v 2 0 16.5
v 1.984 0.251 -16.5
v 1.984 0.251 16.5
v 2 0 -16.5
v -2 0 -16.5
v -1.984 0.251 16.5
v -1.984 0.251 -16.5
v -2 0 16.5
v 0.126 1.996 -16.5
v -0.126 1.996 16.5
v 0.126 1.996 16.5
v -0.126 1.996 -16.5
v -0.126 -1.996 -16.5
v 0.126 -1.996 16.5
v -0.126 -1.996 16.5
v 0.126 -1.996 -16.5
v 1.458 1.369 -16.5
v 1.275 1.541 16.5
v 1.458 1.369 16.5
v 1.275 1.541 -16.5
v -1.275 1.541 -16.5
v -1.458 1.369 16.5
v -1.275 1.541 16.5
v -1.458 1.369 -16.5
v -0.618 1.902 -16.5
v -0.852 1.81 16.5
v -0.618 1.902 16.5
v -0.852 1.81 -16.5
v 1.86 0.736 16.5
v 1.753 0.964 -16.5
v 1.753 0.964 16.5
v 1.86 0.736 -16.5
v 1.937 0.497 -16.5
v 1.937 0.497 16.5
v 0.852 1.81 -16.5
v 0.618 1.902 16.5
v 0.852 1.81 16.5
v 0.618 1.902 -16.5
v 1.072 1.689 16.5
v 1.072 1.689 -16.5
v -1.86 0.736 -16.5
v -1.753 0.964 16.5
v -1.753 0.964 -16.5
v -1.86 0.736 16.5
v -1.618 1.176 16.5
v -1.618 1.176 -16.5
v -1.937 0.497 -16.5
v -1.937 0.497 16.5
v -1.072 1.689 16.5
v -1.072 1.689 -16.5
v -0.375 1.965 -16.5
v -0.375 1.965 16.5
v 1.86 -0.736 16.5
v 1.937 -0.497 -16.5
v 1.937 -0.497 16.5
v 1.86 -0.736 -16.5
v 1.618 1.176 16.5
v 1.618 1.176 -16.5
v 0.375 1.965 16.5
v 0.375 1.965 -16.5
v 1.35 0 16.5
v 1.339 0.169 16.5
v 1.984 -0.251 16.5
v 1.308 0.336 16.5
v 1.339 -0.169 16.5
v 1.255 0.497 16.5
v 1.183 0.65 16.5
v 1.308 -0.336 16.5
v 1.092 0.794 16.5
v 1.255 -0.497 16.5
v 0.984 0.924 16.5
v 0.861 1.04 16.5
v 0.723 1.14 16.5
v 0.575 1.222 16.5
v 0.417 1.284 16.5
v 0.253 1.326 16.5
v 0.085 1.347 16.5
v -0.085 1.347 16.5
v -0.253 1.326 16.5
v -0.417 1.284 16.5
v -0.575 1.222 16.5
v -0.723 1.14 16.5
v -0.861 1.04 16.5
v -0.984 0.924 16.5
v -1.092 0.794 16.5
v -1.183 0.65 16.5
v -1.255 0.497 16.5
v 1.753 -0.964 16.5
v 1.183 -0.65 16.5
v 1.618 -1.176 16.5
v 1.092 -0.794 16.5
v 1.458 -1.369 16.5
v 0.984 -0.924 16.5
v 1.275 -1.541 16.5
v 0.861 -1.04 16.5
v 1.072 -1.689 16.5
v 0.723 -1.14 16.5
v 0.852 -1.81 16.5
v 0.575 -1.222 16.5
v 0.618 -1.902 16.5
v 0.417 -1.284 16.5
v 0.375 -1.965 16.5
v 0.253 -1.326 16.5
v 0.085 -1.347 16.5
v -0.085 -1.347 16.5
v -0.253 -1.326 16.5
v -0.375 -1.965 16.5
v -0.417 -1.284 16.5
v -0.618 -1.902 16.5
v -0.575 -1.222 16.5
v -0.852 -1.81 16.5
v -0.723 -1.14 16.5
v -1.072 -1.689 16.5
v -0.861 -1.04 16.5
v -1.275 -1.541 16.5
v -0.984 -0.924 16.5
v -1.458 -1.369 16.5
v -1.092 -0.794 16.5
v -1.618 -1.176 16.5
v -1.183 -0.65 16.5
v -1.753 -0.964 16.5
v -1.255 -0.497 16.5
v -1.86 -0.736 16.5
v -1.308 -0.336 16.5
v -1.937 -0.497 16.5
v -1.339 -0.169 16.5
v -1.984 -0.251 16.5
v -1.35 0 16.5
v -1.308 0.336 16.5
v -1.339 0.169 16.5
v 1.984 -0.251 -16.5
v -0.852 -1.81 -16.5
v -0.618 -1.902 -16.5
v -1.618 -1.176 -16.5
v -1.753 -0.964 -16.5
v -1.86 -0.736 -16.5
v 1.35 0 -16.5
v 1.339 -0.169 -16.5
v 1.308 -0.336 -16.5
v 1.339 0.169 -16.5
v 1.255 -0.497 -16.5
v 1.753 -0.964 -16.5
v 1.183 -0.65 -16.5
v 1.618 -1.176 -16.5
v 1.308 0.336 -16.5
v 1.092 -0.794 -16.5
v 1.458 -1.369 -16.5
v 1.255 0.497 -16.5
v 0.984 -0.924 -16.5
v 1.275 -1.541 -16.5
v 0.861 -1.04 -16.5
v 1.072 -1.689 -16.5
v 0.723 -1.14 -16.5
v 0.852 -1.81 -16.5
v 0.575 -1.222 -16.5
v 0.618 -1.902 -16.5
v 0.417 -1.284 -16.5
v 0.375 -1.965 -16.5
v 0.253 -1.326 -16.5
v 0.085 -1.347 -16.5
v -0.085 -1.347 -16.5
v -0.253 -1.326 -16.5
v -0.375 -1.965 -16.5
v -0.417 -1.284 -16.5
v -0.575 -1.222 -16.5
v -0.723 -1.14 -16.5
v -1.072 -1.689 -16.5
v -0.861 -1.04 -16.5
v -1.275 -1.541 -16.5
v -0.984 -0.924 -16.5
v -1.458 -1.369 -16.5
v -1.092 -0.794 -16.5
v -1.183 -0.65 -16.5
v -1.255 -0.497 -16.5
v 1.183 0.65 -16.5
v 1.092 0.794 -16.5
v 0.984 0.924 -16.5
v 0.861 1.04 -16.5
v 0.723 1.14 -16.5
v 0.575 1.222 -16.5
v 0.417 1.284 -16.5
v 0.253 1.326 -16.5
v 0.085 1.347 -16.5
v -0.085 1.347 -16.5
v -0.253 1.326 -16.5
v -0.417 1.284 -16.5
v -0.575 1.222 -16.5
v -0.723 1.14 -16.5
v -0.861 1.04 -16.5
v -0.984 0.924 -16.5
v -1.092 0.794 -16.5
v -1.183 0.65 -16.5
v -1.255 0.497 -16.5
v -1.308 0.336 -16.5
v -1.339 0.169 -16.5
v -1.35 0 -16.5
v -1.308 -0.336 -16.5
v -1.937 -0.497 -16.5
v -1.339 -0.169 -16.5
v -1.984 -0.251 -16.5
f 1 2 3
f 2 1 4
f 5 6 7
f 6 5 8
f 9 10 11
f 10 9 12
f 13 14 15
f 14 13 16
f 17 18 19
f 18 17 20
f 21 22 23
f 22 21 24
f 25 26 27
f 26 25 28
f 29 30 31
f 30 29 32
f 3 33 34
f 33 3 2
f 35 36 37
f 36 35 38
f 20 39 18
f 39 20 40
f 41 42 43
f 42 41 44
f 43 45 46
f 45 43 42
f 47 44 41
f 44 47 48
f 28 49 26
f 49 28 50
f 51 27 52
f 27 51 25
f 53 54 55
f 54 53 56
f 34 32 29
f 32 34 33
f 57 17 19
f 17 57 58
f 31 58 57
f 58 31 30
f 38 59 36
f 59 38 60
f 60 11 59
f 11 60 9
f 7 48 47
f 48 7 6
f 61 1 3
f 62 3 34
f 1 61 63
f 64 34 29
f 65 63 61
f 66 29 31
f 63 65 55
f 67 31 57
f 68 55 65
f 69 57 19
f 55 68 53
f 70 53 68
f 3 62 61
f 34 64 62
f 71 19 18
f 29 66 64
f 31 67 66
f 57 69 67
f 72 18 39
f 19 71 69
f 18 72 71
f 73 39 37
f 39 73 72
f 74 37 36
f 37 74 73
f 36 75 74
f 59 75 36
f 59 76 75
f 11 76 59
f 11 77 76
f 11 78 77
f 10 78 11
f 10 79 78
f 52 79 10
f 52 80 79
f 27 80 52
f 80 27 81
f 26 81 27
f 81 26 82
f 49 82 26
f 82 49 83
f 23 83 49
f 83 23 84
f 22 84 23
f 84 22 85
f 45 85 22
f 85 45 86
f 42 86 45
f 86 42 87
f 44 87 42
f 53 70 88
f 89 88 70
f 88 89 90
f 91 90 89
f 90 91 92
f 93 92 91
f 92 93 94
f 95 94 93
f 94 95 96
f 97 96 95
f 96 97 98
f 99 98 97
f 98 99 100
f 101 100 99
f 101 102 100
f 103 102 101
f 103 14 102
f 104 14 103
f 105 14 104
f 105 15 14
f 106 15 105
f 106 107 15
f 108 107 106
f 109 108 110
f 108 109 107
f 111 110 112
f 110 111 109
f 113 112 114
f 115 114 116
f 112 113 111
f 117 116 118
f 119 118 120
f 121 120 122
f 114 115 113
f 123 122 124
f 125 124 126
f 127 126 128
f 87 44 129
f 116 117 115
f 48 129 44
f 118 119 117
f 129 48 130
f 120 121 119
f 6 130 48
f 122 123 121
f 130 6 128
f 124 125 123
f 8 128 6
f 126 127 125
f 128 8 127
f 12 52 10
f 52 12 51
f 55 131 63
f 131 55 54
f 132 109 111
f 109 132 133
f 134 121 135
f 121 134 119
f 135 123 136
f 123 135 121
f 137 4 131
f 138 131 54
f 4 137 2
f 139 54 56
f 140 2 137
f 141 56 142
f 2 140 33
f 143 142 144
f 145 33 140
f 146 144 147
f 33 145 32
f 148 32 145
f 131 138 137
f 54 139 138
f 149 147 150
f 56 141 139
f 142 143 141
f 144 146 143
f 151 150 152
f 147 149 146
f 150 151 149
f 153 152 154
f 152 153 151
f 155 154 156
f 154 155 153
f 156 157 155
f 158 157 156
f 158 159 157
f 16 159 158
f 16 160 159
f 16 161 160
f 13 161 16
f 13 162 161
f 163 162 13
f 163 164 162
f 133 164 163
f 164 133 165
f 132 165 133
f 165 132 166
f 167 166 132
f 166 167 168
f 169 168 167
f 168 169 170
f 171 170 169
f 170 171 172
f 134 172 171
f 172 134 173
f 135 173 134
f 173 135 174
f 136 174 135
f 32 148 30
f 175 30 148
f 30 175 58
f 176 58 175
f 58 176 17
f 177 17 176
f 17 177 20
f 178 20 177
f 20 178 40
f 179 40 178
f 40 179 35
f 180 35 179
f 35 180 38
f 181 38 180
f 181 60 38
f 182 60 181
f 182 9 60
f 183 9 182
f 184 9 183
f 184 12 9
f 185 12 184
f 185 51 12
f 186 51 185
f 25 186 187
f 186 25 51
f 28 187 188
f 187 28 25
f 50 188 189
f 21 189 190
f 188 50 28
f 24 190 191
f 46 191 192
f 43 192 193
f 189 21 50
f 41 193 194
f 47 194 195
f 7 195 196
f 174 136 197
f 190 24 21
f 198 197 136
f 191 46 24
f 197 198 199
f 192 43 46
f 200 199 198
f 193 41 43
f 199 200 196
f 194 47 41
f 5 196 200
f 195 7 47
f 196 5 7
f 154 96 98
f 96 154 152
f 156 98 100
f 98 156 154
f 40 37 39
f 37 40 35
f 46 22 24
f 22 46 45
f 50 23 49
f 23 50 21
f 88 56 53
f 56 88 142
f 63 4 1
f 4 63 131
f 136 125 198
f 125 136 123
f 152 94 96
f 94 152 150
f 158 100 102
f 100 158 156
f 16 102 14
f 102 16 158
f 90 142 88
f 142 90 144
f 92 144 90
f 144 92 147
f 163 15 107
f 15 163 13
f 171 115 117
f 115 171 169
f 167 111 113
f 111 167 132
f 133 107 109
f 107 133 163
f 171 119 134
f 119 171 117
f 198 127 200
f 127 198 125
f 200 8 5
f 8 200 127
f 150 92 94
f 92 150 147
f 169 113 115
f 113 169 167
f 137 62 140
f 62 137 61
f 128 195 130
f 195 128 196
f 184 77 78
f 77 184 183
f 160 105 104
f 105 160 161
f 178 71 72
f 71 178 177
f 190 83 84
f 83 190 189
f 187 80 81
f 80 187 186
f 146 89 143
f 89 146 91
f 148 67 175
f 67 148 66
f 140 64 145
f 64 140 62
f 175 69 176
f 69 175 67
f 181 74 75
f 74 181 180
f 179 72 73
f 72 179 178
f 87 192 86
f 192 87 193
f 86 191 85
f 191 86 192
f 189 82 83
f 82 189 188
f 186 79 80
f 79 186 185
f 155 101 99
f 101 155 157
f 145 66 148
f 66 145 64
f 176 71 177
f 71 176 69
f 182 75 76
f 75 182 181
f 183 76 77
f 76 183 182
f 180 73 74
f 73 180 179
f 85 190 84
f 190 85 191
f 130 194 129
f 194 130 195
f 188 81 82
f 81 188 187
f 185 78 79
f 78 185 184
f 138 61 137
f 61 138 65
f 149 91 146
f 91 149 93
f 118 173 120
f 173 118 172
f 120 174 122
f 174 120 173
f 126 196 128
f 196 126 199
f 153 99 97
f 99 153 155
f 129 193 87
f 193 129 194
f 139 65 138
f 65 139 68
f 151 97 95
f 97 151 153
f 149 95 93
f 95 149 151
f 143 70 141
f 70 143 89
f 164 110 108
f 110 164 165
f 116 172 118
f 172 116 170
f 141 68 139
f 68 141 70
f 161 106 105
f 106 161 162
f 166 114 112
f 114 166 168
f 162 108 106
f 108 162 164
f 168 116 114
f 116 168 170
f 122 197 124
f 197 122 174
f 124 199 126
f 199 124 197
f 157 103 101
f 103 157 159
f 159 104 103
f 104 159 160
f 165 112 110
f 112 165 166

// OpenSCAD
$fn = 50;


difference() {
	union() {
		translate(v = [0, 0, -16.5000000000]) {
			cylinder(h = 33, r = 2.0000000000);
		}
	}
	union() {
		translate(v = [0, 0, -100.0000000000]) {
			cylinder(h = 200, r = 1.3500000000);
		}
	}
}
